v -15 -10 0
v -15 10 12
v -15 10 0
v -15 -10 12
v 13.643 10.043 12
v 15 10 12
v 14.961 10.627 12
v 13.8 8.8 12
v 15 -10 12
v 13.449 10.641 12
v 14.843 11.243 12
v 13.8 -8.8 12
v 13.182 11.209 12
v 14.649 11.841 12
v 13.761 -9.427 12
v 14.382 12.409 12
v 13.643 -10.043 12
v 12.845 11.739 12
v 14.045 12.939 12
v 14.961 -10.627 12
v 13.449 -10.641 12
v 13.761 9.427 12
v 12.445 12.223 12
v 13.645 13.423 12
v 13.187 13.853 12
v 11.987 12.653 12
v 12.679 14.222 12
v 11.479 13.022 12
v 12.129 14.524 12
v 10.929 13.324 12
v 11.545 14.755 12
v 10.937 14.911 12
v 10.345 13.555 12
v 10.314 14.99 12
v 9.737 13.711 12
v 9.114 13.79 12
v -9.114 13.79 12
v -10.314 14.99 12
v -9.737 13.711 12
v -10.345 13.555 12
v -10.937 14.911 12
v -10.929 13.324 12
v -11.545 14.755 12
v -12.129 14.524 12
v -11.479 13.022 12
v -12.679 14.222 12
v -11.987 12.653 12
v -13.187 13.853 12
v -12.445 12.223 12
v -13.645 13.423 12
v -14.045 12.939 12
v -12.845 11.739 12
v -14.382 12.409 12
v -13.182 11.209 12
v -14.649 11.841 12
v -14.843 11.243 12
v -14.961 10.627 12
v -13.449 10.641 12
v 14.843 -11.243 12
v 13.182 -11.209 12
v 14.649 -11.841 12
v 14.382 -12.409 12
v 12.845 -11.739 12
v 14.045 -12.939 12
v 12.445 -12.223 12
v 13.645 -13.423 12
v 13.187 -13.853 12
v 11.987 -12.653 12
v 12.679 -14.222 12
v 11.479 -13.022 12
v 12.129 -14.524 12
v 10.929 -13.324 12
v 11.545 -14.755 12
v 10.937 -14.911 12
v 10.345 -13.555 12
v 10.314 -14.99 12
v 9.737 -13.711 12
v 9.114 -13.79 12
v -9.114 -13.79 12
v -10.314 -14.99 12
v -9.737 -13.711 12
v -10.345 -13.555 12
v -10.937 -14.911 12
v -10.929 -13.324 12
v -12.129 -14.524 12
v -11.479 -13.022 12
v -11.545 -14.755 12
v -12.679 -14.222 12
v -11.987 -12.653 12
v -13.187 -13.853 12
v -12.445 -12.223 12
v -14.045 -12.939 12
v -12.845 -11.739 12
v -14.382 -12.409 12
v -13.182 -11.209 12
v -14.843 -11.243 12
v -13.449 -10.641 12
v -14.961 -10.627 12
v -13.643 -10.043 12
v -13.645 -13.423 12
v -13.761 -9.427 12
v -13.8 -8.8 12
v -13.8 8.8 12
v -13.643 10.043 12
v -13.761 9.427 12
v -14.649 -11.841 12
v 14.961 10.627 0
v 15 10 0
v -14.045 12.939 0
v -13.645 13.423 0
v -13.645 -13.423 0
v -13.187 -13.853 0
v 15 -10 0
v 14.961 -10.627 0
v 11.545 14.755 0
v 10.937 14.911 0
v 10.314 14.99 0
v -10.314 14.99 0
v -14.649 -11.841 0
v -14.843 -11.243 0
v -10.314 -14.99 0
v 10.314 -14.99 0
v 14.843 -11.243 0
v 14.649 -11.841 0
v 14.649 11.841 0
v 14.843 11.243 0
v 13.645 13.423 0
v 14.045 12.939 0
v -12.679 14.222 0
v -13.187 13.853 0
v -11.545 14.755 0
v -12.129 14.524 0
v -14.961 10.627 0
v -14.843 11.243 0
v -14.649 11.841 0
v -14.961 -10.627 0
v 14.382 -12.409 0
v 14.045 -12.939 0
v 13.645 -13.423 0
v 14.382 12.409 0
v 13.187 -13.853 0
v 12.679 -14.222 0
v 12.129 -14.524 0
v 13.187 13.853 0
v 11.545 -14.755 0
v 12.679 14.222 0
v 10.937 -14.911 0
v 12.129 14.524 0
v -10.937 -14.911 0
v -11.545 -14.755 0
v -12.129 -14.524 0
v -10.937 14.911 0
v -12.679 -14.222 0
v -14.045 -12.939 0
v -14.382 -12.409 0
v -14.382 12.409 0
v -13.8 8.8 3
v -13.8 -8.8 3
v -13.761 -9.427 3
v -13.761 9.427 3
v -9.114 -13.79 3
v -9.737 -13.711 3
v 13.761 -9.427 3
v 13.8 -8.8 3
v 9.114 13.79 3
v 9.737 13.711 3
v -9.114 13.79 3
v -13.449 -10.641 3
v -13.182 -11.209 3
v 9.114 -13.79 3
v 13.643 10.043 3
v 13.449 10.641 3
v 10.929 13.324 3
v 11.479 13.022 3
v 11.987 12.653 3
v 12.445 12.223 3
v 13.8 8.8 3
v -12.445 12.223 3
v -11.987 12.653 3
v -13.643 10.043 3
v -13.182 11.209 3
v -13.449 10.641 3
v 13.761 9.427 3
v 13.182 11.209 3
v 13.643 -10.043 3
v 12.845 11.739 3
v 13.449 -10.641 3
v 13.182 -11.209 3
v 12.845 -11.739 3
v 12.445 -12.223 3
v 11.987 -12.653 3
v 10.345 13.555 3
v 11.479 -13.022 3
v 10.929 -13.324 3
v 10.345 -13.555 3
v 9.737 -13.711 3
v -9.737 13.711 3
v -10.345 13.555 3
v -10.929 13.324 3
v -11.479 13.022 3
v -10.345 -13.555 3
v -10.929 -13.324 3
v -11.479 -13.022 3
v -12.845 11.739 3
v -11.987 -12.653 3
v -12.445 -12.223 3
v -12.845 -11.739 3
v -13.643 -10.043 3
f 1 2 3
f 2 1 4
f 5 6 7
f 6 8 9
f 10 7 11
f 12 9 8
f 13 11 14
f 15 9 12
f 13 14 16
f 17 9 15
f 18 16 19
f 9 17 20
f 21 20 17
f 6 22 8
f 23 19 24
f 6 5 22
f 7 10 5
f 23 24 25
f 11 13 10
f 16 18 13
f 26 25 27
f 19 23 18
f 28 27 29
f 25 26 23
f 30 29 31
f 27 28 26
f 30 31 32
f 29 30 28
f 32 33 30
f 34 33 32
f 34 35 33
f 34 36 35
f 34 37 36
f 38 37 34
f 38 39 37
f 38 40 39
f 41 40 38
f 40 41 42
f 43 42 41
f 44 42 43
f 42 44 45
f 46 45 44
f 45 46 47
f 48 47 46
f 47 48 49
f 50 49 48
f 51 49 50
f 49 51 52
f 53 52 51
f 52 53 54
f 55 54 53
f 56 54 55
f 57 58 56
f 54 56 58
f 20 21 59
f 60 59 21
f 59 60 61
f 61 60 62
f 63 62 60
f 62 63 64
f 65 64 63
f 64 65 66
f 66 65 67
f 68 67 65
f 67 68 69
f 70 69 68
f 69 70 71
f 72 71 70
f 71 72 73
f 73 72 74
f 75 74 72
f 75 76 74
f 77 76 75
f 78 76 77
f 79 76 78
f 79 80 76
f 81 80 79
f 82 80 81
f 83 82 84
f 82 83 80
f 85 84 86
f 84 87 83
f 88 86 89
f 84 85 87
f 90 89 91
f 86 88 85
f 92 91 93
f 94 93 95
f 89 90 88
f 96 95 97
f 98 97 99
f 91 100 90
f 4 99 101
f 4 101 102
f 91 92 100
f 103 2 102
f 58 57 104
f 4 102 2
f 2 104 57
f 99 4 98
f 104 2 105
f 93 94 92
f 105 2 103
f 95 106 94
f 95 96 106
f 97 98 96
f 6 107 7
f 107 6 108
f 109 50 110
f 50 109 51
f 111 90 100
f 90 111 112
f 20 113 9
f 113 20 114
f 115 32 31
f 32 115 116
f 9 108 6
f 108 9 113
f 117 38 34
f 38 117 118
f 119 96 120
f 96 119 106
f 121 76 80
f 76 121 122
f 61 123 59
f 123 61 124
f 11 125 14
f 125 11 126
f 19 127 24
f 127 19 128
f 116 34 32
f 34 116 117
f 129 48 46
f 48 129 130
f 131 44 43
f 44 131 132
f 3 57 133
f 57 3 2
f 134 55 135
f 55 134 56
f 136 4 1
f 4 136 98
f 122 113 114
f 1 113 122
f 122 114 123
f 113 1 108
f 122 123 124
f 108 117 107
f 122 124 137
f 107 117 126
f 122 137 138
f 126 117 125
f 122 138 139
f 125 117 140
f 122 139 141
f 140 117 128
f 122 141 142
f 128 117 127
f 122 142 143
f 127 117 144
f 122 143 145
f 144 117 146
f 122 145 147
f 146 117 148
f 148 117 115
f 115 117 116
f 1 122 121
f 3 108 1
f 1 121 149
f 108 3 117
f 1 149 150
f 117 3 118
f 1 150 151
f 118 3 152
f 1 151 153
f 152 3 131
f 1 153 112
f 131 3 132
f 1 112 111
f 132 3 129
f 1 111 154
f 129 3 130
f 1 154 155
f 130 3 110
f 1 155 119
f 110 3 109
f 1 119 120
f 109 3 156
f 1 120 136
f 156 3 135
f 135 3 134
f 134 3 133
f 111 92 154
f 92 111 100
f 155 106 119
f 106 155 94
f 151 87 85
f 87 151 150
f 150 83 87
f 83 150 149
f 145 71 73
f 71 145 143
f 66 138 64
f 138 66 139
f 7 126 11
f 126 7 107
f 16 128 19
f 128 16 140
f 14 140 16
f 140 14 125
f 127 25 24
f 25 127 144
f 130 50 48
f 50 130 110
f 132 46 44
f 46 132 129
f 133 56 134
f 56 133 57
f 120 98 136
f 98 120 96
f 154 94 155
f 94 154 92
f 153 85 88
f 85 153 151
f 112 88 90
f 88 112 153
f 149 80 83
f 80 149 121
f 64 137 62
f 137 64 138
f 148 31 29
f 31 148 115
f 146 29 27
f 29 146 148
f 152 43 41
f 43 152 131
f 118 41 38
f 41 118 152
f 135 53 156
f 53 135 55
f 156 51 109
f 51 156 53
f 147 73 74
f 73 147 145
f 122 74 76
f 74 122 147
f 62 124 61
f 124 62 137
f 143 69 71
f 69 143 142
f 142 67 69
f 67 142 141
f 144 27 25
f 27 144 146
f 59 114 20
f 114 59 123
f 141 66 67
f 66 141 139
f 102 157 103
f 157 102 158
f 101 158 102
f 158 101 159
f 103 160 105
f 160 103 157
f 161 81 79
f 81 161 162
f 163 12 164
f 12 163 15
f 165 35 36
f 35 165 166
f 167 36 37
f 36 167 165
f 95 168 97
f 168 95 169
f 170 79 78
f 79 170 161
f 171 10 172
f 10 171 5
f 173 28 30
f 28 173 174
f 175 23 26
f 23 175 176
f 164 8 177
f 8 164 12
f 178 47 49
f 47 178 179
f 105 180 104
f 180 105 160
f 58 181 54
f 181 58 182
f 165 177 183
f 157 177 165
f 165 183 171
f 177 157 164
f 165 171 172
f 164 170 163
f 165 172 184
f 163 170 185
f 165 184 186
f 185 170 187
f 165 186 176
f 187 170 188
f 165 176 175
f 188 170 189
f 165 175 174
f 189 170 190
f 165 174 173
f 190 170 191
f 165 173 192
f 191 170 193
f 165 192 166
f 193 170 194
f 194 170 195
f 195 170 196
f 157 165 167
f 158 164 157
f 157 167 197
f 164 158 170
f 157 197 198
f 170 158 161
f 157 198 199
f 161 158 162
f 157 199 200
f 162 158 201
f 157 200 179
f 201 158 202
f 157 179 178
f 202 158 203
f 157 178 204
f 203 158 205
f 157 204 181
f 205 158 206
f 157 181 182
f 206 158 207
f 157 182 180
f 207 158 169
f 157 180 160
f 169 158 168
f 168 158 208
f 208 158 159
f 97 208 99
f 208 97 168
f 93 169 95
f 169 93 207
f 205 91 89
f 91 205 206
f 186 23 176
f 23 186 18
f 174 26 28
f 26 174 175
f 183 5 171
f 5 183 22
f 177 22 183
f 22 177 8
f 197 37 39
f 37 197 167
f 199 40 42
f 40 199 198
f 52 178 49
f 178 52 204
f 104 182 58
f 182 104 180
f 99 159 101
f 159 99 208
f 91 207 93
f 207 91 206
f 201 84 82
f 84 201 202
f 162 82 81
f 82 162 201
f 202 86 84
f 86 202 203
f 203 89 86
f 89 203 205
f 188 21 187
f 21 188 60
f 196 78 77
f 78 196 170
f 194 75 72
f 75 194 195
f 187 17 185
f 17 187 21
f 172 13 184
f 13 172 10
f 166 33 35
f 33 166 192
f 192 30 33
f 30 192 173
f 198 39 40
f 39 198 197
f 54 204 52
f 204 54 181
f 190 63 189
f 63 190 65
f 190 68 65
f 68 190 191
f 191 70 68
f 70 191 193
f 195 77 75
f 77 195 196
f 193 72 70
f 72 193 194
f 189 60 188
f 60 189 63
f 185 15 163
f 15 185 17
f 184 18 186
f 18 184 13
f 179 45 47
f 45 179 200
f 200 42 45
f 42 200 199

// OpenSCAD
$fn = 50;


difference() {
	union() {
		hull() {
			translate(v = [-10.0000000000, 10.0000000000, 0]) {
				cylinder(h = 12, r = 5);
			}
			translate(v = [10.0000000000, 10.0000000000, 0]) {
				cylinder(h = 12, r = 5);
			}
			translate(v = [-10.0000000000, -10.0000000000, 0]) {
				cylinder(h = 12, r = 5);
			}
			translate(v = [10.0000000000, -10.0000000000, 0]) {
				cylinder(h = 12, r = 5);
			}
		}
	}
	union() {
		translate(v = [0, 0, 3]) {
			#hull() {
				translate(v = [-8.8000000000, 8.8000000000, 0]) {
					cylinder(h = 9, r = 5);
				}
				translate(v = [8.8000000000, 8.8000000000, 0]) {
					cylinder(h = 9, r = 5);
				}
				translate(v = [-8.8000000000, -8.8000000000, 0]) {
					cylinder(h = 9, r = 5);
				}
				translate(v = [8.8000000000, -8.8000000000, 0]) {
					cylinder(h = 9, r = 5);
				}
			}
		}
	}
}
